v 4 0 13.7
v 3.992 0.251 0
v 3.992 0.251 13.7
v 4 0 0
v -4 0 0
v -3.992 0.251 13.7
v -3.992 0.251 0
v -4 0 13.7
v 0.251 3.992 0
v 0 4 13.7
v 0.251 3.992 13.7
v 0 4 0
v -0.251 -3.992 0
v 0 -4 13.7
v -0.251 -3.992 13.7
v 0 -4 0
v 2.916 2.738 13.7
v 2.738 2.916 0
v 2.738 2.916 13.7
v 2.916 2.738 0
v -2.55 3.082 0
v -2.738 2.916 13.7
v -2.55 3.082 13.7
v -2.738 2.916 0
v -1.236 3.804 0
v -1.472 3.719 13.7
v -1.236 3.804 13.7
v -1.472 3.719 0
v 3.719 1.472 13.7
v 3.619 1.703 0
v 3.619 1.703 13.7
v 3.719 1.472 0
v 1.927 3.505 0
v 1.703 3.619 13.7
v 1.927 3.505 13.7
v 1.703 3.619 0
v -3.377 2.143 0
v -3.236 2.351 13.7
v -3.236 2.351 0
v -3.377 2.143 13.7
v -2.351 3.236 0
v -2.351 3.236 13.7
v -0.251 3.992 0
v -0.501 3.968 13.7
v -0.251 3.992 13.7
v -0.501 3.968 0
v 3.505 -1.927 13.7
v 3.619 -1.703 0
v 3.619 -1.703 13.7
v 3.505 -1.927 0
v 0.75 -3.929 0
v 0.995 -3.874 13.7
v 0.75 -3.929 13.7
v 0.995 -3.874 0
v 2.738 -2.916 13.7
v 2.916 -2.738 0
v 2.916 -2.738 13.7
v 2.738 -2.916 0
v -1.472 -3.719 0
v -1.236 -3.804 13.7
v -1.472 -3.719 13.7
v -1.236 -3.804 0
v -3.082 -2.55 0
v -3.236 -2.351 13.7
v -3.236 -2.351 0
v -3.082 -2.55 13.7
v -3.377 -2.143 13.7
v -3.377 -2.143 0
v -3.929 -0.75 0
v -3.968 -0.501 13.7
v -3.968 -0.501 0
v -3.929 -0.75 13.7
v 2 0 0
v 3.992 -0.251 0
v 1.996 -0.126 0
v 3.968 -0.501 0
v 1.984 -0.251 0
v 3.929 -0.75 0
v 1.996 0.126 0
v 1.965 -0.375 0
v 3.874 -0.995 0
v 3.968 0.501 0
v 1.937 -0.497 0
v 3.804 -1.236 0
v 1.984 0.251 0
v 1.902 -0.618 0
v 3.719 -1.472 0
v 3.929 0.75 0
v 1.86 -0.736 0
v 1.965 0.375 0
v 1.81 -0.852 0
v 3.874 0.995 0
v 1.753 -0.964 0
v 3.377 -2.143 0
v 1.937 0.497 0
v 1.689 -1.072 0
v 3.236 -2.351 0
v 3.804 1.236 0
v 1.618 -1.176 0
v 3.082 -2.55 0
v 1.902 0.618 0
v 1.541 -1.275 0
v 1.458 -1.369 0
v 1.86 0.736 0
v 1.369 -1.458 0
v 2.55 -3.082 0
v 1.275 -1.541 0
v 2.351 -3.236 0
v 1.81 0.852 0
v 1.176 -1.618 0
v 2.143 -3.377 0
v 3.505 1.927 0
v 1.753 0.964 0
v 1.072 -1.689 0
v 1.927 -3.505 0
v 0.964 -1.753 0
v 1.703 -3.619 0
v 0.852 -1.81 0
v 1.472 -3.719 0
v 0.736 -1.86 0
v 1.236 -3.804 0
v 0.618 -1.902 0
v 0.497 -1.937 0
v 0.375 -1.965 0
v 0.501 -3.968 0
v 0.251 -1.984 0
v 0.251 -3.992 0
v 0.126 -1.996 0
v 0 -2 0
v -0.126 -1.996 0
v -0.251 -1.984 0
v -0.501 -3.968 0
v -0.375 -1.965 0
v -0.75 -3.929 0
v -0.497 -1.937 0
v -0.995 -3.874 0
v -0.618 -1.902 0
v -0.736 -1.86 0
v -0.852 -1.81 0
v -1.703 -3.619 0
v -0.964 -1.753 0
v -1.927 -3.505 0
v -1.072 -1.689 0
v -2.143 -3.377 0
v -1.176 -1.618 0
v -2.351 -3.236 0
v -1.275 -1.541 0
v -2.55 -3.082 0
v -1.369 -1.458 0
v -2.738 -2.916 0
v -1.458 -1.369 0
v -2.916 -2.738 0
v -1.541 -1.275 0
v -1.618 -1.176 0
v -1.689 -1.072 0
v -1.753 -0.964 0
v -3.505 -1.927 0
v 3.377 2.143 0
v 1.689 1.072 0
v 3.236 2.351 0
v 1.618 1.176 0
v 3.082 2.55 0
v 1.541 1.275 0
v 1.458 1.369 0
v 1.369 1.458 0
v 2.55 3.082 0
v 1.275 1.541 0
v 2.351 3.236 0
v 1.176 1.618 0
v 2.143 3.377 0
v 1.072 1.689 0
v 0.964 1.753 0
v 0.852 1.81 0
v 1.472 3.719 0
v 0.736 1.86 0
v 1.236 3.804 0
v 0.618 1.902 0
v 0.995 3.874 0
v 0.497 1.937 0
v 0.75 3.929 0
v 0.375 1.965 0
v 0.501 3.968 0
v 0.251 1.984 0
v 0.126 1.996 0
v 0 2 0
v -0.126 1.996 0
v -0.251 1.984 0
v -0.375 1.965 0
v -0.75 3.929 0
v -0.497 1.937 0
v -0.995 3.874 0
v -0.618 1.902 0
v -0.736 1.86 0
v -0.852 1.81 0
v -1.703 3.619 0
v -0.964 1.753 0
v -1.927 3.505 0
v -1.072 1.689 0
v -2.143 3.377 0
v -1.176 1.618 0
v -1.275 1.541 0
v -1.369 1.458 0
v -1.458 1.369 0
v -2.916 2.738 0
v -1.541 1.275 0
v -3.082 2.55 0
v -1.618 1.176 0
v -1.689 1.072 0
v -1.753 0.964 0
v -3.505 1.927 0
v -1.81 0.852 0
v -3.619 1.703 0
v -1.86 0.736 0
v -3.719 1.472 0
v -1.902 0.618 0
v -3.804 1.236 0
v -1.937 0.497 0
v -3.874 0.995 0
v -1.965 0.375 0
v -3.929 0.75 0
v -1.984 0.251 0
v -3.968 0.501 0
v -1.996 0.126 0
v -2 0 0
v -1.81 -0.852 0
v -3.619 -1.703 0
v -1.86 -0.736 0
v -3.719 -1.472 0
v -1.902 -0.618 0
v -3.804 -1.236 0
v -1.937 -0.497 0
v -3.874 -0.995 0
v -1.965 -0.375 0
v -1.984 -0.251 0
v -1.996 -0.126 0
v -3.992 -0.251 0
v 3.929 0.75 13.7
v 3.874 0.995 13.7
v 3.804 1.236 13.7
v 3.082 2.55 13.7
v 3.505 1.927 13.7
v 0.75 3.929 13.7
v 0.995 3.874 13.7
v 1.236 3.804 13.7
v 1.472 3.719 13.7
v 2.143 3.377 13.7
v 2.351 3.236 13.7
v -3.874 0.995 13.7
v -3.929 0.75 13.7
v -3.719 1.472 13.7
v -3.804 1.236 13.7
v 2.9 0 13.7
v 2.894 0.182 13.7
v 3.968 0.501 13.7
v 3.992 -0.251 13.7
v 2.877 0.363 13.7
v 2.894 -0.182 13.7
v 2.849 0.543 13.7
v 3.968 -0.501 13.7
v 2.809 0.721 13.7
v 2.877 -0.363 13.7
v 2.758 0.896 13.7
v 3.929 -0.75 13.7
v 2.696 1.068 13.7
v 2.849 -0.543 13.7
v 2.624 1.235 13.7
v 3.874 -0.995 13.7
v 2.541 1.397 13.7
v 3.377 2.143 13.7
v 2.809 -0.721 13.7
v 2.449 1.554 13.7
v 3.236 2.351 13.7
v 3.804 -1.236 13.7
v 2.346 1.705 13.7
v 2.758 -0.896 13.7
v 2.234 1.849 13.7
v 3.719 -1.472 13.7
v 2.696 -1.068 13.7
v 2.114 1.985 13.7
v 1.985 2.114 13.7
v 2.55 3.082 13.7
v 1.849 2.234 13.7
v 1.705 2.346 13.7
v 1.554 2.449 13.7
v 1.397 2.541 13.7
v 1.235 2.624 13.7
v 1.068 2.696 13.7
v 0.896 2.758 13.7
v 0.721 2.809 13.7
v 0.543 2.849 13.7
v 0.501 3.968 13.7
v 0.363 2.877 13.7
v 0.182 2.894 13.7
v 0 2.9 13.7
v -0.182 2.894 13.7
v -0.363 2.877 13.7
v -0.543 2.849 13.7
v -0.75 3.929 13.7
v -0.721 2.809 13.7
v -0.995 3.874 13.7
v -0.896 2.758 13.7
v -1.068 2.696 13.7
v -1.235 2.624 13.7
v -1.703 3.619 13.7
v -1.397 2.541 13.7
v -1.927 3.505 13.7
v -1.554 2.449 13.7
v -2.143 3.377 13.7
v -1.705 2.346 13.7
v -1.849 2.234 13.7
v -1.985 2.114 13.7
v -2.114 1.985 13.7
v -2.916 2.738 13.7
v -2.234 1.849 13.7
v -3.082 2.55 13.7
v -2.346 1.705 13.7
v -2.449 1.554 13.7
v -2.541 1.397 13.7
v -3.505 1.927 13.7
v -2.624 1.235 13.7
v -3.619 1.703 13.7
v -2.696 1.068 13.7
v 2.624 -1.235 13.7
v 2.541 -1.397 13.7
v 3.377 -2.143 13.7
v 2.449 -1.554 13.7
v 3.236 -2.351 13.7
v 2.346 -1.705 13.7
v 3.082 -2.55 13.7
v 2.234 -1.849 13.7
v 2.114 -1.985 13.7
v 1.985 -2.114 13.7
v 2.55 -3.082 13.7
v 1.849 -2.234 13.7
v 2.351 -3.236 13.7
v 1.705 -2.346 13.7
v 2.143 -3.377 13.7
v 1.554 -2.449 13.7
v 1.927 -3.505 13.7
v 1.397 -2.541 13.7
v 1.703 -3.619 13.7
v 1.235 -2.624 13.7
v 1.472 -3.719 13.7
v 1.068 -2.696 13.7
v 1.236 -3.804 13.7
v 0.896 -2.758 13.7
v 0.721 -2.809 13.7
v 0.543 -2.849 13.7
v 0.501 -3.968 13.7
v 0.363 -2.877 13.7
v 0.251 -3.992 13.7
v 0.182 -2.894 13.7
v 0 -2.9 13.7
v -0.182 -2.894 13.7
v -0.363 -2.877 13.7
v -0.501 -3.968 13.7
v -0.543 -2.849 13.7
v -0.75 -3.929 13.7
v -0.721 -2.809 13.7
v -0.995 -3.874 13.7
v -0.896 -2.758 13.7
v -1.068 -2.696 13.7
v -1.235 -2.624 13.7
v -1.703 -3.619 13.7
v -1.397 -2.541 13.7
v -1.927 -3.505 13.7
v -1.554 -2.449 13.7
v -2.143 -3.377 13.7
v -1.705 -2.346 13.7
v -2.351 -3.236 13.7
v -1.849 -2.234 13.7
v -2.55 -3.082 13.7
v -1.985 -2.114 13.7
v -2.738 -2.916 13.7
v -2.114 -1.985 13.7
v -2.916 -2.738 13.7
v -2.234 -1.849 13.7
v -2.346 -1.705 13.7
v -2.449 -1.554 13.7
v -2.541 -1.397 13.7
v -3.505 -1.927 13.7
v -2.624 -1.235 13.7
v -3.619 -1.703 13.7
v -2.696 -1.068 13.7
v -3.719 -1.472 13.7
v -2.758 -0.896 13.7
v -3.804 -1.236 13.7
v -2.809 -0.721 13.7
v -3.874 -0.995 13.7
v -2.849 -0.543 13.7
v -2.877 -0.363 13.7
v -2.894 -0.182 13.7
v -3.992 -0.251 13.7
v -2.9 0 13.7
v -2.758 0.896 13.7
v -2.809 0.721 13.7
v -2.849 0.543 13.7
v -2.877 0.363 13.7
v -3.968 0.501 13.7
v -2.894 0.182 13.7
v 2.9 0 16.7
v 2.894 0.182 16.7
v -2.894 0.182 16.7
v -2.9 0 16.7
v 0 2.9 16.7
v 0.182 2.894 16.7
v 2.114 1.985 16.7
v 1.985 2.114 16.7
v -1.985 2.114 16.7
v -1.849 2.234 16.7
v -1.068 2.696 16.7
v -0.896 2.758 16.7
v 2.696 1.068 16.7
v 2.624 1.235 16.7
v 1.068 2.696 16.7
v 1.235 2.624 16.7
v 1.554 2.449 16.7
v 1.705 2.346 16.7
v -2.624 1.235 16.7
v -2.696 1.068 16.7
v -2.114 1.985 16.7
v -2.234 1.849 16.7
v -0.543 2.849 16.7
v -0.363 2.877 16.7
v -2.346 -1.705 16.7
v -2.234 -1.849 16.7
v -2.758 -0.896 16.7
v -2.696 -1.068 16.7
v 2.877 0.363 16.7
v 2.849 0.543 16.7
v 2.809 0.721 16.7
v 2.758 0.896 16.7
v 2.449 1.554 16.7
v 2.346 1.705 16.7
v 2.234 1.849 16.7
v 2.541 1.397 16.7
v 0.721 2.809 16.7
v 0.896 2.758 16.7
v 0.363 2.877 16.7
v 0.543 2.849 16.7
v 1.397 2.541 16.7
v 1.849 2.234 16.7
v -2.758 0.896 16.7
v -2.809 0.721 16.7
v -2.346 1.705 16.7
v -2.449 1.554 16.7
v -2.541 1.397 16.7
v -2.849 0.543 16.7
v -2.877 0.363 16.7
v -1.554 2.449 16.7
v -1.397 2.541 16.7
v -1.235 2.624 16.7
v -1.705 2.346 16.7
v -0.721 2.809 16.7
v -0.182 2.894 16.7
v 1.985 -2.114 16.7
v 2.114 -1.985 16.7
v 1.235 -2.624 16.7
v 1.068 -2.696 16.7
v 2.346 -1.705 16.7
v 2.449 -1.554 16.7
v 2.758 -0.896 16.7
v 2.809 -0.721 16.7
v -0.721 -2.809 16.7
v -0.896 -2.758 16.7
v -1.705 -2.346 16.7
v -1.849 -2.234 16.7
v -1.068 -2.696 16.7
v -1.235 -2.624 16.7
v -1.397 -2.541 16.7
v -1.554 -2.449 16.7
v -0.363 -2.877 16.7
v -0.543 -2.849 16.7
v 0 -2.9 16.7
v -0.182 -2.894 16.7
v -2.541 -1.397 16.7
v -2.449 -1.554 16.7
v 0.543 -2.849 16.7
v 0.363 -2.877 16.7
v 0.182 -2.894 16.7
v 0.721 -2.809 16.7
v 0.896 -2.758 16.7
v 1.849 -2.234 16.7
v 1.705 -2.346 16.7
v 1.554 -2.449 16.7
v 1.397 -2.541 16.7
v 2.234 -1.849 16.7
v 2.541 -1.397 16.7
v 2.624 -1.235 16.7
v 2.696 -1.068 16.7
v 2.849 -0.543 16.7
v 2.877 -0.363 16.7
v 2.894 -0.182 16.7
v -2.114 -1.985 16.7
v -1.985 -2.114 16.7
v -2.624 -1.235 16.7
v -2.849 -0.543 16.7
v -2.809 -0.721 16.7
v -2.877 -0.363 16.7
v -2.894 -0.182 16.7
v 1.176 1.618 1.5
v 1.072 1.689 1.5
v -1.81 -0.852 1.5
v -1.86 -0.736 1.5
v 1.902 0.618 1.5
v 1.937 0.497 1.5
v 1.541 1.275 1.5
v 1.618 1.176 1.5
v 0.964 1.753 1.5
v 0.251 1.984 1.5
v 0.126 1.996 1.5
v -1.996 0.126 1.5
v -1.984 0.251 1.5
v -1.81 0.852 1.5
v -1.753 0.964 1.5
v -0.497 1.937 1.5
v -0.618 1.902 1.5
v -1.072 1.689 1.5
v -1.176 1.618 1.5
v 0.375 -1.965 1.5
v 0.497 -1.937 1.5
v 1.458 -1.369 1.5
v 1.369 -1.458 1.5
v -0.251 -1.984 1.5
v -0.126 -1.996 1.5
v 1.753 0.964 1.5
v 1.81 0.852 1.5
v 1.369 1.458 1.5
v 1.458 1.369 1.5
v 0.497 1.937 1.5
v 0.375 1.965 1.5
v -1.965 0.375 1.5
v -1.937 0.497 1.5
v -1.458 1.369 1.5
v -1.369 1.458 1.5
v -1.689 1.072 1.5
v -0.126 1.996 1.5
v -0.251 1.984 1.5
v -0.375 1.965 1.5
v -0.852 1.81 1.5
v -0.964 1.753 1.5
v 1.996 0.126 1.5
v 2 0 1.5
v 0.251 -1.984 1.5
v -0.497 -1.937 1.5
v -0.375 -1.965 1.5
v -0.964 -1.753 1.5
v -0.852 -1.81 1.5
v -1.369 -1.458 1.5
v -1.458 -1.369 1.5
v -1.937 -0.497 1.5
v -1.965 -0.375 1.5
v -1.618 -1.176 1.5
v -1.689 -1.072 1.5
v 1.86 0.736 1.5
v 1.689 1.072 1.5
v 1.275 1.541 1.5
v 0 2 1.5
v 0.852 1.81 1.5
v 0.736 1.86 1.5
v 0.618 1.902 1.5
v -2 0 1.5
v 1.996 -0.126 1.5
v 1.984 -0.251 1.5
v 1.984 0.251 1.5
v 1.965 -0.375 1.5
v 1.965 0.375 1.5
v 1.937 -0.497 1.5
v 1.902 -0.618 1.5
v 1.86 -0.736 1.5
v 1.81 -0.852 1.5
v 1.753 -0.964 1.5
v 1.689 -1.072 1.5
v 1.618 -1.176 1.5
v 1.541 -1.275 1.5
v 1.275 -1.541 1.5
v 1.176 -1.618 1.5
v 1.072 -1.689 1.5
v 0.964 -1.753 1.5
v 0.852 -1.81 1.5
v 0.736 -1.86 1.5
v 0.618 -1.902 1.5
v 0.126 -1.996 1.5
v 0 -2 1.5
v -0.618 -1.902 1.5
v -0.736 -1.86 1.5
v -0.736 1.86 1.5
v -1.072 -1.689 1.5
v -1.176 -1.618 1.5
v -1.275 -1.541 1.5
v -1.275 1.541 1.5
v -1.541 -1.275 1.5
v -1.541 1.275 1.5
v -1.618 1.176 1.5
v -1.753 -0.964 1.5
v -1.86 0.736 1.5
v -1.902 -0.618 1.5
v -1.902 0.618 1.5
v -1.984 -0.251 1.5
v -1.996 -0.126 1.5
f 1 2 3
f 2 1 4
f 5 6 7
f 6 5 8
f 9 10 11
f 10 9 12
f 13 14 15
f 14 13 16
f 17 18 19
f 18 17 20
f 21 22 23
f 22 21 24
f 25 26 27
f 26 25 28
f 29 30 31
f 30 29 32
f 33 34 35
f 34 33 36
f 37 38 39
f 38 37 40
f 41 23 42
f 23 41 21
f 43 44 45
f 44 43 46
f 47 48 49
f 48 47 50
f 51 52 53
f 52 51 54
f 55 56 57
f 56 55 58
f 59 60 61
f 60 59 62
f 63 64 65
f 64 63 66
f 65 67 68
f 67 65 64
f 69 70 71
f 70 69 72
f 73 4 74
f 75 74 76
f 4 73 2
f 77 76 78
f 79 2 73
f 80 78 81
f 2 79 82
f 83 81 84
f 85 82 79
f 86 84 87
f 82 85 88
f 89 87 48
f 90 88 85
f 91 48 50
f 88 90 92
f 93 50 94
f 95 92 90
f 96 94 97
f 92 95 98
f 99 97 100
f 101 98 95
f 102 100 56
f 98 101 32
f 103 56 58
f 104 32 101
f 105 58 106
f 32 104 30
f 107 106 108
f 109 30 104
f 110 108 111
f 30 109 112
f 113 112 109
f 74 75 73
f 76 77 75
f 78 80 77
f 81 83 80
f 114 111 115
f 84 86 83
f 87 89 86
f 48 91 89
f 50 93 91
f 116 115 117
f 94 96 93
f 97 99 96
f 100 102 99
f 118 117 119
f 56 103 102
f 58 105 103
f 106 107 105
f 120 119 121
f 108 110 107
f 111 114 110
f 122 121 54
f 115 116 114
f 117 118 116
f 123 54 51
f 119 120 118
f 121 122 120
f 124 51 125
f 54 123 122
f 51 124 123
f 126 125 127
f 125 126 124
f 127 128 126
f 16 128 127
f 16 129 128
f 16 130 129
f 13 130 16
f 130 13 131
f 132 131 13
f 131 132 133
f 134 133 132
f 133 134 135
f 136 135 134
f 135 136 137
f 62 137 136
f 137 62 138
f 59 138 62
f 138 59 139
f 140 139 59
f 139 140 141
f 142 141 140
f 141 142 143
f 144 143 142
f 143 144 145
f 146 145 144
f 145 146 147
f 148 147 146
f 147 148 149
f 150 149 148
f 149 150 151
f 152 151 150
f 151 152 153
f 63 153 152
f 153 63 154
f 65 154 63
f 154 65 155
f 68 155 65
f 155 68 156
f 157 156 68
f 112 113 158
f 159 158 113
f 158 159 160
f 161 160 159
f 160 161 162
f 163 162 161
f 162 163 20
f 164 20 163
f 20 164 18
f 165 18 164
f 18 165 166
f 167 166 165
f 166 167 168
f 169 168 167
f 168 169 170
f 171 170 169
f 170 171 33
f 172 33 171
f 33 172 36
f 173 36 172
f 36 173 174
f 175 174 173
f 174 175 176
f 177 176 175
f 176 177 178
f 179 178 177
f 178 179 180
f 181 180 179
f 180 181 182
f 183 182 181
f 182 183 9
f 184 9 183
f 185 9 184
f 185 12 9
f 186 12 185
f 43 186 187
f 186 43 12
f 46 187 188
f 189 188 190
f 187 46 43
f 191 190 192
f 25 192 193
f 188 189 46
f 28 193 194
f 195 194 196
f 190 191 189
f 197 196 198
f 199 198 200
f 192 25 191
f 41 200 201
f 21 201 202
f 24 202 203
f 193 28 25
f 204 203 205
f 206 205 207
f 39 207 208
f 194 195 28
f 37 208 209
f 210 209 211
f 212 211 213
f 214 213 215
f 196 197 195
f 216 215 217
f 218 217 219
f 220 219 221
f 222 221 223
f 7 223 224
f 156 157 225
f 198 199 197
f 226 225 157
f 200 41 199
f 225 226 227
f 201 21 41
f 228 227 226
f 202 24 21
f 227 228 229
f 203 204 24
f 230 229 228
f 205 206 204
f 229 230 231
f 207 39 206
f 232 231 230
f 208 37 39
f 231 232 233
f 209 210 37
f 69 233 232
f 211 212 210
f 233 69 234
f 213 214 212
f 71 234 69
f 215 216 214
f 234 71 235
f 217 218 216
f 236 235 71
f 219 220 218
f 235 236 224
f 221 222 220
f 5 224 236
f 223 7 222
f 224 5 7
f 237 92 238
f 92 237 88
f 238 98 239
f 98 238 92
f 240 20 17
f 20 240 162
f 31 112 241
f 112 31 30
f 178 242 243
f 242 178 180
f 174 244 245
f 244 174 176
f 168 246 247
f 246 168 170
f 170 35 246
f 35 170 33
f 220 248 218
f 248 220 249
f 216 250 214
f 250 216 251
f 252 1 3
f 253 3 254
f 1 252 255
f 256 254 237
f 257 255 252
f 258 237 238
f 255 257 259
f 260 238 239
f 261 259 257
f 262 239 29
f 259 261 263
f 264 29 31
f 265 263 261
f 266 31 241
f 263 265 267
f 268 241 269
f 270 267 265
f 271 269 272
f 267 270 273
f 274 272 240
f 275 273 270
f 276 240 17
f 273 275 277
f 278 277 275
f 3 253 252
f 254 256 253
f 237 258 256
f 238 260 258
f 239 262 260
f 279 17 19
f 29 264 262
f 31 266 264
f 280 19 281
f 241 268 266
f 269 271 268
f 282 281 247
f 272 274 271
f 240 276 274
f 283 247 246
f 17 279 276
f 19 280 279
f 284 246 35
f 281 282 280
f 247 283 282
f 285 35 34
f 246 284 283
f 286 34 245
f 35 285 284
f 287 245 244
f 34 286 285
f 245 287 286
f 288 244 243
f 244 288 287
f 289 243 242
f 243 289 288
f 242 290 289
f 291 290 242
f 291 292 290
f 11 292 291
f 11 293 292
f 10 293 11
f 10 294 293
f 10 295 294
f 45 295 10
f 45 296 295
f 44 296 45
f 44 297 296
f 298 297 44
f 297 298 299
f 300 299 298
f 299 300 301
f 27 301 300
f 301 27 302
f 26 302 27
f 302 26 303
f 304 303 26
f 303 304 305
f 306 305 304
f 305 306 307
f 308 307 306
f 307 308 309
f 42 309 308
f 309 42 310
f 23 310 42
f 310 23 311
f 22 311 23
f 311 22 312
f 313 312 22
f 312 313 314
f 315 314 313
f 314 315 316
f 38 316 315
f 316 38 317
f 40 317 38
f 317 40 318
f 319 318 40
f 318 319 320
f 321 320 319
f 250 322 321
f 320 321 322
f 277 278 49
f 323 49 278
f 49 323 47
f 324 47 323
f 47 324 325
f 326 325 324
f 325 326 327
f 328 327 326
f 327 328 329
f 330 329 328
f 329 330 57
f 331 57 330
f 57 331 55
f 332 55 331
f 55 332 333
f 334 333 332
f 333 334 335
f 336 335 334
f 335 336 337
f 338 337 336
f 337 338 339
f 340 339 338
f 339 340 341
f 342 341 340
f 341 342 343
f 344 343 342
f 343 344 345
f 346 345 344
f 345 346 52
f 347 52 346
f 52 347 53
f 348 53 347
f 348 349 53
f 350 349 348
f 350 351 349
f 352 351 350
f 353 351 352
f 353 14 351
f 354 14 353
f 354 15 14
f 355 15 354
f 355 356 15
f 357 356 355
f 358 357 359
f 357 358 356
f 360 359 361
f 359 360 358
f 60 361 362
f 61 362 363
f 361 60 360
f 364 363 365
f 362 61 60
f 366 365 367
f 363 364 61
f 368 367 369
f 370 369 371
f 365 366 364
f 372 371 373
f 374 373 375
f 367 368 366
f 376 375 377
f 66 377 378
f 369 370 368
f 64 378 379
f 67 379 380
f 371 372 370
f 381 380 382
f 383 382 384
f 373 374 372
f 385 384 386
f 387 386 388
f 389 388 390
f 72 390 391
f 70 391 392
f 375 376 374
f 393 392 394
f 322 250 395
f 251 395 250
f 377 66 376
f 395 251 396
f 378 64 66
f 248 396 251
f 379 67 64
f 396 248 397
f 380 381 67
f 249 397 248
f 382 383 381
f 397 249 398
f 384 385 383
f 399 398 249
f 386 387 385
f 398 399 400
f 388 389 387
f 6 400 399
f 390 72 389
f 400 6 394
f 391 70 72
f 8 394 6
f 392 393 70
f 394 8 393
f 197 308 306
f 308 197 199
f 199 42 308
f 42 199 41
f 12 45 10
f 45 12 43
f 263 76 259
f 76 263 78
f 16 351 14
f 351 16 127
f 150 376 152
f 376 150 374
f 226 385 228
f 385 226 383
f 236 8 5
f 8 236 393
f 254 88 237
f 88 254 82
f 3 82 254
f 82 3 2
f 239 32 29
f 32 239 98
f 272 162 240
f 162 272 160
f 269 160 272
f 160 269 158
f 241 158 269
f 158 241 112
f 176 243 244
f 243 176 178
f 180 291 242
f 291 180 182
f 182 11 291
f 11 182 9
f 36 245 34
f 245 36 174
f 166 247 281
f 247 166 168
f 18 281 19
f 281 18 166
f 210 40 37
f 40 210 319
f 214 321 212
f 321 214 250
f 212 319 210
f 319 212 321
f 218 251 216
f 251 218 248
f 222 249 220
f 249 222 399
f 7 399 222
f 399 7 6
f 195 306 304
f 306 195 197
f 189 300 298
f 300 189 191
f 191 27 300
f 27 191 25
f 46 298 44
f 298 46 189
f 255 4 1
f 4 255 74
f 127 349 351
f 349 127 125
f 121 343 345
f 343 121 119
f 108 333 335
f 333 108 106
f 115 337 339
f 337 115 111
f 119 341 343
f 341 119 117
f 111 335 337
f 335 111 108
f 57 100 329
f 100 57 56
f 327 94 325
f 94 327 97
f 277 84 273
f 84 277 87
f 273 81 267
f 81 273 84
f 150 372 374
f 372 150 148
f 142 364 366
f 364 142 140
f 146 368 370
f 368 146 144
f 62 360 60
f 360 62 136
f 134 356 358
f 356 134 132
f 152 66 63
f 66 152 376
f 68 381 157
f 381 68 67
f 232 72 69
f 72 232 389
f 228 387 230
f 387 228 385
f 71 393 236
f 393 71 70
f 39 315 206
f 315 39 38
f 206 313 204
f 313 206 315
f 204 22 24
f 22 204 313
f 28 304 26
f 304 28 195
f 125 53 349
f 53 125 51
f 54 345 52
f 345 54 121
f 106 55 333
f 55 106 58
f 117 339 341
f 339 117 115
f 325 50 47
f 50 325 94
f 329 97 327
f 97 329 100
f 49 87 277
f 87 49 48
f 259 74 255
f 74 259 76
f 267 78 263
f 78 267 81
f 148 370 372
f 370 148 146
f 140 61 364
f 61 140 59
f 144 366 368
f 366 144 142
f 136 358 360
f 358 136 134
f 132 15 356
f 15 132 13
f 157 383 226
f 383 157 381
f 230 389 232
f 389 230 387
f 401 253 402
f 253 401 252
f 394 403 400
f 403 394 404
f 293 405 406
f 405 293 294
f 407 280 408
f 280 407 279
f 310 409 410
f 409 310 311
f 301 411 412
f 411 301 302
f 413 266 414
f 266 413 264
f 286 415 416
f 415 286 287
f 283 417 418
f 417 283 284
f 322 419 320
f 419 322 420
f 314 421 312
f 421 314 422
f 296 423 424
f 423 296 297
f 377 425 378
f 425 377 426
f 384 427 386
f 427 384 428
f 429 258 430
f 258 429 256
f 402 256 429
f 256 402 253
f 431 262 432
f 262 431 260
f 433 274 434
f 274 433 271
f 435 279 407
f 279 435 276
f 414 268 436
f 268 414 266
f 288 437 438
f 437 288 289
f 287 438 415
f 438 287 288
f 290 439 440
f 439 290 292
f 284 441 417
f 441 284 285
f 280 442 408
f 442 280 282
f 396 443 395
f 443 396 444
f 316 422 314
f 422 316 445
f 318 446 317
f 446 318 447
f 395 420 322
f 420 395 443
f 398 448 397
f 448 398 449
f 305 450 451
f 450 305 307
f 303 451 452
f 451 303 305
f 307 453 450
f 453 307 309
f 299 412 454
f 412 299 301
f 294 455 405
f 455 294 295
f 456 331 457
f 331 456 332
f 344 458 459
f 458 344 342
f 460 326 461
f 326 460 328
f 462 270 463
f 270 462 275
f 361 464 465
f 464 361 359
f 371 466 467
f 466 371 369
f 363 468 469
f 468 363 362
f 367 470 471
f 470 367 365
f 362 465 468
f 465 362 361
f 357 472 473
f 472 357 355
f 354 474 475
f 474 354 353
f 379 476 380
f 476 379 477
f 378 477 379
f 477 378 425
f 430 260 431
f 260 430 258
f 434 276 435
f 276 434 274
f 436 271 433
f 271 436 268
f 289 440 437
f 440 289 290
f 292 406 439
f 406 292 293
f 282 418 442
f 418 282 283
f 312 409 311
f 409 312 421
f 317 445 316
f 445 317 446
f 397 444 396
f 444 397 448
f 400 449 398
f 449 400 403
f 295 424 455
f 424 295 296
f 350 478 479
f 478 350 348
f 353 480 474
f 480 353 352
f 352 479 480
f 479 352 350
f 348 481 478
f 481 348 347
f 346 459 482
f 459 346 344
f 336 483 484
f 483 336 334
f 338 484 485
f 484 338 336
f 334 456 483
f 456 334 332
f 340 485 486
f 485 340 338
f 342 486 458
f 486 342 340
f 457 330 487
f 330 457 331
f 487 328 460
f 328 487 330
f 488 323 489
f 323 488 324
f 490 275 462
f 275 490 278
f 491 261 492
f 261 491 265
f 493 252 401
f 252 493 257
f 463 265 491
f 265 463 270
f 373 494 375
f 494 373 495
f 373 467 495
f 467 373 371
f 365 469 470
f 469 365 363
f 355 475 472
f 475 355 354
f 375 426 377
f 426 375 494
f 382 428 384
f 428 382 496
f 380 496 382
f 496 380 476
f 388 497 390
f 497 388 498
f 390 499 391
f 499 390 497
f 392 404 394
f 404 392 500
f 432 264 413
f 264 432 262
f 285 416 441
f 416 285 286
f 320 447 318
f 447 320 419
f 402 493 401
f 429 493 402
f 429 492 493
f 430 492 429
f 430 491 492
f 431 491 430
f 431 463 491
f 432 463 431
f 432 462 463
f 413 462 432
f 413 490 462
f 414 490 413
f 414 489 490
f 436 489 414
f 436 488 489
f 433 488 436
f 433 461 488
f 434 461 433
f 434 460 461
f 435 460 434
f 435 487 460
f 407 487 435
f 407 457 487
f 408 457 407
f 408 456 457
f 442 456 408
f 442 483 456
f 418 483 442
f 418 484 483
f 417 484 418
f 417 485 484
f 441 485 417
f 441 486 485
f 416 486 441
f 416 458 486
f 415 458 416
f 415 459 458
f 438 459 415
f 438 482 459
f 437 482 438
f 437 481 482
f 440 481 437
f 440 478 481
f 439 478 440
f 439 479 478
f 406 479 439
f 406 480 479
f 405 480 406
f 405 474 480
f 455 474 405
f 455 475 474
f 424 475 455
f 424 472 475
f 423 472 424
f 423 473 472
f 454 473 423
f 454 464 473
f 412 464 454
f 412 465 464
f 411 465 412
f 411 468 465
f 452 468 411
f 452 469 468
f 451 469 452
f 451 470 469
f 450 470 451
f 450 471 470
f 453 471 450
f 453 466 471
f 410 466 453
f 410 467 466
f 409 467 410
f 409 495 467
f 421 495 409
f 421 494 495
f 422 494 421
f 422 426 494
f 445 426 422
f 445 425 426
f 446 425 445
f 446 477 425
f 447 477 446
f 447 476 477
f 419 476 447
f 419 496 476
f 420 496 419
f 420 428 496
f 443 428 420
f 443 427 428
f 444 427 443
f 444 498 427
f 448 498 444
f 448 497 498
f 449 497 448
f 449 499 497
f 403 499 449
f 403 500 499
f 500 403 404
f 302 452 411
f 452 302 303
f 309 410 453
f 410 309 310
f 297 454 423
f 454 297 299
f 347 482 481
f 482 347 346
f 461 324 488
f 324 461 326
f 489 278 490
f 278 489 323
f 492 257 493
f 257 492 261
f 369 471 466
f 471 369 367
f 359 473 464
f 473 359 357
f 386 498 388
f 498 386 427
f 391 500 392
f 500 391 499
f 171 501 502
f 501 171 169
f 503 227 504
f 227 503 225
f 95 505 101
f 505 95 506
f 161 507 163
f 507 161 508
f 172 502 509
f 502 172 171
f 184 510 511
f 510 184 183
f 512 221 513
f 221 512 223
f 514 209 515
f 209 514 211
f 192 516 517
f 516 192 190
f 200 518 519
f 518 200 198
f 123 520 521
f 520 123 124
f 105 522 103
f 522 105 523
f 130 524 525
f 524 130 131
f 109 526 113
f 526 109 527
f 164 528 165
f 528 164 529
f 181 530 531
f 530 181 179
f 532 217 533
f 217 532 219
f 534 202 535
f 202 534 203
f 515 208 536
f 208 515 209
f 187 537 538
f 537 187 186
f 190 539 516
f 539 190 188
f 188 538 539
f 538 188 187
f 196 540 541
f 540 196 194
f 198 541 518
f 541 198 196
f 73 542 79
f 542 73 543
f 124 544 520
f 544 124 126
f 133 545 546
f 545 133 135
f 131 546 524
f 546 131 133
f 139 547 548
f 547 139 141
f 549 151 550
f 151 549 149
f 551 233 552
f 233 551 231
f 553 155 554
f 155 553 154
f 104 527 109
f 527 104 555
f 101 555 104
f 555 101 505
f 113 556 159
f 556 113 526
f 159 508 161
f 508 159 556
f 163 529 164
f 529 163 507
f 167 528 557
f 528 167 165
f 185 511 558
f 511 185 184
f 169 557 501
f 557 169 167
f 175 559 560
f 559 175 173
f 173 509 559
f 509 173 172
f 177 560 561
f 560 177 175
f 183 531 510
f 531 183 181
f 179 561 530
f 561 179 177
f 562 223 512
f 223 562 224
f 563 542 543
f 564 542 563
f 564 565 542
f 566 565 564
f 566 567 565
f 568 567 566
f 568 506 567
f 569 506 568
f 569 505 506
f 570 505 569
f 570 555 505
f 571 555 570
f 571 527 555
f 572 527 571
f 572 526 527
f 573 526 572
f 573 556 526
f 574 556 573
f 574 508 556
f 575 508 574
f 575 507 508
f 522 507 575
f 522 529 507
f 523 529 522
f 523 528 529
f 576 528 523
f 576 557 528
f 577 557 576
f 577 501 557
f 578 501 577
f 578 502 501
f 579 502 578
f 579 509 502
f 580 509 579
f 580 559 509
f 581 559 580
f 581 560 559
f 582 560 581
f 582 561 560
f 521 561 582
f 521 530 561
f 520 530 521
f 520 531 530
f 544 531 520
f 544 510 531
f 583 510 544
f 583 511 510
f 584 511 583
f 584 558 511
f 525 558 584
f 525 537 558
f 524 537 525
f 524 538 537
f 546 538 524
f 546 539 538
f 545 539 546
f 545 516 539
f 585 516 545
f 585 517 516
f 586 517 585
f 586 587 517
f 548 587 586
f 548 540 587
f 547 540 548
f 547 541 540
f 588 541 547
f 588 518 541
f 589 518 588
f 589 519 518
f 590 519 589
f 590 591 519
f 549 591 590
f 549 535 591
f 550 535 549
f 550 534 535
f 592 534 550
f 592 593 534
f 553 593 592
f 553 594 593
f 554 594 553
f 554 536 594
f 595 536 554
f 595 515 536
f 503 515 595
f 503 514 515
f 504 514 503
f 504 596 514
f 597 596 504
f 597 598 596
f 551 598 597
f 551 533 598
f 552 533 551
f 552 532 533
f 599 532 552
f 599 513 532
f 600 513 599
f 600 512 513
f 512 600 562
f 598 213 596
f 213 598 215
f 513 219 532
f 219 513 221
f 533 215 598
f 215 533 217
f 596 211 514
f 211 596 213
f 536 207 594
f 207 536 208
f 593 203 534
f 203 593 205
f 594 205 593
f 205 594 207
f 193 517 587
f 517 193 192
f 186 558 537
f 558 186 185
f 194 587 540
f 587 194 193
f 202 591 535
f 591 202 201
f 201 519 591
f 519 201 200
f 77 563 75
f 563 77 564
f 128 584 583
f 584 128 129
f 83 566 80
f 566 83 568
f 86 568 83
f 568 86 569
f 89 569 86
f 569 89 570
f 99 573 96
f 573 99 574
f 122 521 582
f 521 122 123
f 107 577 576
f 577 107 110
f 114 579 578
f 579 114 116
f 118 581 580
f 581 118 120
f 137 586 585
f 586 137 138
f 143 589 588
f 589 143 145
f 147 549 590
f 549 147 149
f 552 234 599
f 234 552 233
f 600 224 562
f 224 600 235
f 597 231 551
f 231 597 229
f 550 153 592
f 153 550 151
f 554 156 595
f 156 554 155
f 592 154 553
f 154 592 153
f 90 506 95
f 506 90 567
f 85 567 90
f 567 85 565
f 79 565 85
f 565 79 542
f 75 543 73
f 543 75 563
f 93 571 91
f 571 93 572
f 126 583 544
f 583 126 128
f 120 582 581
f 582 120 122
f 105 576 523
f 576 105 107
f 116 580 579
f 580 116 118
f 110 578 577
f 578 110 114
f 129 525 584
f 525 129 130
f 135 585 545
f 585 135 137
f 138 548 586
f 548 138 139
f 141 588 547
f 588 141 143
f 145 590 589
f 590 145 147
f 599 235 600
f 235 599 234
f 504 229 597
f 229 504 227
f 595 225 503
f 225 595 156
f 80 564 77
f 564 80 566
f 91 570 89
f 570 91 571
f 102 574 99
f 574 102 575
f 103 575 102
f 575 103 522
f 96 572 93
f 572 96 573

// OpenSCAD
// 14.4 vyska od vrchu krabice
// 1.2 tloustka steny

// 4 dira
// 1.5 zahlub

difference() {
    union() {
        cylinder(d=8,h=12.2+1.5,$fn=100);
        cylinder(d=5.8,h=12.2+1.5+3,$fn=100);
    }
    translate([0,0,-1])cylinder(d=4,h=2.5,$fn=100);
}
